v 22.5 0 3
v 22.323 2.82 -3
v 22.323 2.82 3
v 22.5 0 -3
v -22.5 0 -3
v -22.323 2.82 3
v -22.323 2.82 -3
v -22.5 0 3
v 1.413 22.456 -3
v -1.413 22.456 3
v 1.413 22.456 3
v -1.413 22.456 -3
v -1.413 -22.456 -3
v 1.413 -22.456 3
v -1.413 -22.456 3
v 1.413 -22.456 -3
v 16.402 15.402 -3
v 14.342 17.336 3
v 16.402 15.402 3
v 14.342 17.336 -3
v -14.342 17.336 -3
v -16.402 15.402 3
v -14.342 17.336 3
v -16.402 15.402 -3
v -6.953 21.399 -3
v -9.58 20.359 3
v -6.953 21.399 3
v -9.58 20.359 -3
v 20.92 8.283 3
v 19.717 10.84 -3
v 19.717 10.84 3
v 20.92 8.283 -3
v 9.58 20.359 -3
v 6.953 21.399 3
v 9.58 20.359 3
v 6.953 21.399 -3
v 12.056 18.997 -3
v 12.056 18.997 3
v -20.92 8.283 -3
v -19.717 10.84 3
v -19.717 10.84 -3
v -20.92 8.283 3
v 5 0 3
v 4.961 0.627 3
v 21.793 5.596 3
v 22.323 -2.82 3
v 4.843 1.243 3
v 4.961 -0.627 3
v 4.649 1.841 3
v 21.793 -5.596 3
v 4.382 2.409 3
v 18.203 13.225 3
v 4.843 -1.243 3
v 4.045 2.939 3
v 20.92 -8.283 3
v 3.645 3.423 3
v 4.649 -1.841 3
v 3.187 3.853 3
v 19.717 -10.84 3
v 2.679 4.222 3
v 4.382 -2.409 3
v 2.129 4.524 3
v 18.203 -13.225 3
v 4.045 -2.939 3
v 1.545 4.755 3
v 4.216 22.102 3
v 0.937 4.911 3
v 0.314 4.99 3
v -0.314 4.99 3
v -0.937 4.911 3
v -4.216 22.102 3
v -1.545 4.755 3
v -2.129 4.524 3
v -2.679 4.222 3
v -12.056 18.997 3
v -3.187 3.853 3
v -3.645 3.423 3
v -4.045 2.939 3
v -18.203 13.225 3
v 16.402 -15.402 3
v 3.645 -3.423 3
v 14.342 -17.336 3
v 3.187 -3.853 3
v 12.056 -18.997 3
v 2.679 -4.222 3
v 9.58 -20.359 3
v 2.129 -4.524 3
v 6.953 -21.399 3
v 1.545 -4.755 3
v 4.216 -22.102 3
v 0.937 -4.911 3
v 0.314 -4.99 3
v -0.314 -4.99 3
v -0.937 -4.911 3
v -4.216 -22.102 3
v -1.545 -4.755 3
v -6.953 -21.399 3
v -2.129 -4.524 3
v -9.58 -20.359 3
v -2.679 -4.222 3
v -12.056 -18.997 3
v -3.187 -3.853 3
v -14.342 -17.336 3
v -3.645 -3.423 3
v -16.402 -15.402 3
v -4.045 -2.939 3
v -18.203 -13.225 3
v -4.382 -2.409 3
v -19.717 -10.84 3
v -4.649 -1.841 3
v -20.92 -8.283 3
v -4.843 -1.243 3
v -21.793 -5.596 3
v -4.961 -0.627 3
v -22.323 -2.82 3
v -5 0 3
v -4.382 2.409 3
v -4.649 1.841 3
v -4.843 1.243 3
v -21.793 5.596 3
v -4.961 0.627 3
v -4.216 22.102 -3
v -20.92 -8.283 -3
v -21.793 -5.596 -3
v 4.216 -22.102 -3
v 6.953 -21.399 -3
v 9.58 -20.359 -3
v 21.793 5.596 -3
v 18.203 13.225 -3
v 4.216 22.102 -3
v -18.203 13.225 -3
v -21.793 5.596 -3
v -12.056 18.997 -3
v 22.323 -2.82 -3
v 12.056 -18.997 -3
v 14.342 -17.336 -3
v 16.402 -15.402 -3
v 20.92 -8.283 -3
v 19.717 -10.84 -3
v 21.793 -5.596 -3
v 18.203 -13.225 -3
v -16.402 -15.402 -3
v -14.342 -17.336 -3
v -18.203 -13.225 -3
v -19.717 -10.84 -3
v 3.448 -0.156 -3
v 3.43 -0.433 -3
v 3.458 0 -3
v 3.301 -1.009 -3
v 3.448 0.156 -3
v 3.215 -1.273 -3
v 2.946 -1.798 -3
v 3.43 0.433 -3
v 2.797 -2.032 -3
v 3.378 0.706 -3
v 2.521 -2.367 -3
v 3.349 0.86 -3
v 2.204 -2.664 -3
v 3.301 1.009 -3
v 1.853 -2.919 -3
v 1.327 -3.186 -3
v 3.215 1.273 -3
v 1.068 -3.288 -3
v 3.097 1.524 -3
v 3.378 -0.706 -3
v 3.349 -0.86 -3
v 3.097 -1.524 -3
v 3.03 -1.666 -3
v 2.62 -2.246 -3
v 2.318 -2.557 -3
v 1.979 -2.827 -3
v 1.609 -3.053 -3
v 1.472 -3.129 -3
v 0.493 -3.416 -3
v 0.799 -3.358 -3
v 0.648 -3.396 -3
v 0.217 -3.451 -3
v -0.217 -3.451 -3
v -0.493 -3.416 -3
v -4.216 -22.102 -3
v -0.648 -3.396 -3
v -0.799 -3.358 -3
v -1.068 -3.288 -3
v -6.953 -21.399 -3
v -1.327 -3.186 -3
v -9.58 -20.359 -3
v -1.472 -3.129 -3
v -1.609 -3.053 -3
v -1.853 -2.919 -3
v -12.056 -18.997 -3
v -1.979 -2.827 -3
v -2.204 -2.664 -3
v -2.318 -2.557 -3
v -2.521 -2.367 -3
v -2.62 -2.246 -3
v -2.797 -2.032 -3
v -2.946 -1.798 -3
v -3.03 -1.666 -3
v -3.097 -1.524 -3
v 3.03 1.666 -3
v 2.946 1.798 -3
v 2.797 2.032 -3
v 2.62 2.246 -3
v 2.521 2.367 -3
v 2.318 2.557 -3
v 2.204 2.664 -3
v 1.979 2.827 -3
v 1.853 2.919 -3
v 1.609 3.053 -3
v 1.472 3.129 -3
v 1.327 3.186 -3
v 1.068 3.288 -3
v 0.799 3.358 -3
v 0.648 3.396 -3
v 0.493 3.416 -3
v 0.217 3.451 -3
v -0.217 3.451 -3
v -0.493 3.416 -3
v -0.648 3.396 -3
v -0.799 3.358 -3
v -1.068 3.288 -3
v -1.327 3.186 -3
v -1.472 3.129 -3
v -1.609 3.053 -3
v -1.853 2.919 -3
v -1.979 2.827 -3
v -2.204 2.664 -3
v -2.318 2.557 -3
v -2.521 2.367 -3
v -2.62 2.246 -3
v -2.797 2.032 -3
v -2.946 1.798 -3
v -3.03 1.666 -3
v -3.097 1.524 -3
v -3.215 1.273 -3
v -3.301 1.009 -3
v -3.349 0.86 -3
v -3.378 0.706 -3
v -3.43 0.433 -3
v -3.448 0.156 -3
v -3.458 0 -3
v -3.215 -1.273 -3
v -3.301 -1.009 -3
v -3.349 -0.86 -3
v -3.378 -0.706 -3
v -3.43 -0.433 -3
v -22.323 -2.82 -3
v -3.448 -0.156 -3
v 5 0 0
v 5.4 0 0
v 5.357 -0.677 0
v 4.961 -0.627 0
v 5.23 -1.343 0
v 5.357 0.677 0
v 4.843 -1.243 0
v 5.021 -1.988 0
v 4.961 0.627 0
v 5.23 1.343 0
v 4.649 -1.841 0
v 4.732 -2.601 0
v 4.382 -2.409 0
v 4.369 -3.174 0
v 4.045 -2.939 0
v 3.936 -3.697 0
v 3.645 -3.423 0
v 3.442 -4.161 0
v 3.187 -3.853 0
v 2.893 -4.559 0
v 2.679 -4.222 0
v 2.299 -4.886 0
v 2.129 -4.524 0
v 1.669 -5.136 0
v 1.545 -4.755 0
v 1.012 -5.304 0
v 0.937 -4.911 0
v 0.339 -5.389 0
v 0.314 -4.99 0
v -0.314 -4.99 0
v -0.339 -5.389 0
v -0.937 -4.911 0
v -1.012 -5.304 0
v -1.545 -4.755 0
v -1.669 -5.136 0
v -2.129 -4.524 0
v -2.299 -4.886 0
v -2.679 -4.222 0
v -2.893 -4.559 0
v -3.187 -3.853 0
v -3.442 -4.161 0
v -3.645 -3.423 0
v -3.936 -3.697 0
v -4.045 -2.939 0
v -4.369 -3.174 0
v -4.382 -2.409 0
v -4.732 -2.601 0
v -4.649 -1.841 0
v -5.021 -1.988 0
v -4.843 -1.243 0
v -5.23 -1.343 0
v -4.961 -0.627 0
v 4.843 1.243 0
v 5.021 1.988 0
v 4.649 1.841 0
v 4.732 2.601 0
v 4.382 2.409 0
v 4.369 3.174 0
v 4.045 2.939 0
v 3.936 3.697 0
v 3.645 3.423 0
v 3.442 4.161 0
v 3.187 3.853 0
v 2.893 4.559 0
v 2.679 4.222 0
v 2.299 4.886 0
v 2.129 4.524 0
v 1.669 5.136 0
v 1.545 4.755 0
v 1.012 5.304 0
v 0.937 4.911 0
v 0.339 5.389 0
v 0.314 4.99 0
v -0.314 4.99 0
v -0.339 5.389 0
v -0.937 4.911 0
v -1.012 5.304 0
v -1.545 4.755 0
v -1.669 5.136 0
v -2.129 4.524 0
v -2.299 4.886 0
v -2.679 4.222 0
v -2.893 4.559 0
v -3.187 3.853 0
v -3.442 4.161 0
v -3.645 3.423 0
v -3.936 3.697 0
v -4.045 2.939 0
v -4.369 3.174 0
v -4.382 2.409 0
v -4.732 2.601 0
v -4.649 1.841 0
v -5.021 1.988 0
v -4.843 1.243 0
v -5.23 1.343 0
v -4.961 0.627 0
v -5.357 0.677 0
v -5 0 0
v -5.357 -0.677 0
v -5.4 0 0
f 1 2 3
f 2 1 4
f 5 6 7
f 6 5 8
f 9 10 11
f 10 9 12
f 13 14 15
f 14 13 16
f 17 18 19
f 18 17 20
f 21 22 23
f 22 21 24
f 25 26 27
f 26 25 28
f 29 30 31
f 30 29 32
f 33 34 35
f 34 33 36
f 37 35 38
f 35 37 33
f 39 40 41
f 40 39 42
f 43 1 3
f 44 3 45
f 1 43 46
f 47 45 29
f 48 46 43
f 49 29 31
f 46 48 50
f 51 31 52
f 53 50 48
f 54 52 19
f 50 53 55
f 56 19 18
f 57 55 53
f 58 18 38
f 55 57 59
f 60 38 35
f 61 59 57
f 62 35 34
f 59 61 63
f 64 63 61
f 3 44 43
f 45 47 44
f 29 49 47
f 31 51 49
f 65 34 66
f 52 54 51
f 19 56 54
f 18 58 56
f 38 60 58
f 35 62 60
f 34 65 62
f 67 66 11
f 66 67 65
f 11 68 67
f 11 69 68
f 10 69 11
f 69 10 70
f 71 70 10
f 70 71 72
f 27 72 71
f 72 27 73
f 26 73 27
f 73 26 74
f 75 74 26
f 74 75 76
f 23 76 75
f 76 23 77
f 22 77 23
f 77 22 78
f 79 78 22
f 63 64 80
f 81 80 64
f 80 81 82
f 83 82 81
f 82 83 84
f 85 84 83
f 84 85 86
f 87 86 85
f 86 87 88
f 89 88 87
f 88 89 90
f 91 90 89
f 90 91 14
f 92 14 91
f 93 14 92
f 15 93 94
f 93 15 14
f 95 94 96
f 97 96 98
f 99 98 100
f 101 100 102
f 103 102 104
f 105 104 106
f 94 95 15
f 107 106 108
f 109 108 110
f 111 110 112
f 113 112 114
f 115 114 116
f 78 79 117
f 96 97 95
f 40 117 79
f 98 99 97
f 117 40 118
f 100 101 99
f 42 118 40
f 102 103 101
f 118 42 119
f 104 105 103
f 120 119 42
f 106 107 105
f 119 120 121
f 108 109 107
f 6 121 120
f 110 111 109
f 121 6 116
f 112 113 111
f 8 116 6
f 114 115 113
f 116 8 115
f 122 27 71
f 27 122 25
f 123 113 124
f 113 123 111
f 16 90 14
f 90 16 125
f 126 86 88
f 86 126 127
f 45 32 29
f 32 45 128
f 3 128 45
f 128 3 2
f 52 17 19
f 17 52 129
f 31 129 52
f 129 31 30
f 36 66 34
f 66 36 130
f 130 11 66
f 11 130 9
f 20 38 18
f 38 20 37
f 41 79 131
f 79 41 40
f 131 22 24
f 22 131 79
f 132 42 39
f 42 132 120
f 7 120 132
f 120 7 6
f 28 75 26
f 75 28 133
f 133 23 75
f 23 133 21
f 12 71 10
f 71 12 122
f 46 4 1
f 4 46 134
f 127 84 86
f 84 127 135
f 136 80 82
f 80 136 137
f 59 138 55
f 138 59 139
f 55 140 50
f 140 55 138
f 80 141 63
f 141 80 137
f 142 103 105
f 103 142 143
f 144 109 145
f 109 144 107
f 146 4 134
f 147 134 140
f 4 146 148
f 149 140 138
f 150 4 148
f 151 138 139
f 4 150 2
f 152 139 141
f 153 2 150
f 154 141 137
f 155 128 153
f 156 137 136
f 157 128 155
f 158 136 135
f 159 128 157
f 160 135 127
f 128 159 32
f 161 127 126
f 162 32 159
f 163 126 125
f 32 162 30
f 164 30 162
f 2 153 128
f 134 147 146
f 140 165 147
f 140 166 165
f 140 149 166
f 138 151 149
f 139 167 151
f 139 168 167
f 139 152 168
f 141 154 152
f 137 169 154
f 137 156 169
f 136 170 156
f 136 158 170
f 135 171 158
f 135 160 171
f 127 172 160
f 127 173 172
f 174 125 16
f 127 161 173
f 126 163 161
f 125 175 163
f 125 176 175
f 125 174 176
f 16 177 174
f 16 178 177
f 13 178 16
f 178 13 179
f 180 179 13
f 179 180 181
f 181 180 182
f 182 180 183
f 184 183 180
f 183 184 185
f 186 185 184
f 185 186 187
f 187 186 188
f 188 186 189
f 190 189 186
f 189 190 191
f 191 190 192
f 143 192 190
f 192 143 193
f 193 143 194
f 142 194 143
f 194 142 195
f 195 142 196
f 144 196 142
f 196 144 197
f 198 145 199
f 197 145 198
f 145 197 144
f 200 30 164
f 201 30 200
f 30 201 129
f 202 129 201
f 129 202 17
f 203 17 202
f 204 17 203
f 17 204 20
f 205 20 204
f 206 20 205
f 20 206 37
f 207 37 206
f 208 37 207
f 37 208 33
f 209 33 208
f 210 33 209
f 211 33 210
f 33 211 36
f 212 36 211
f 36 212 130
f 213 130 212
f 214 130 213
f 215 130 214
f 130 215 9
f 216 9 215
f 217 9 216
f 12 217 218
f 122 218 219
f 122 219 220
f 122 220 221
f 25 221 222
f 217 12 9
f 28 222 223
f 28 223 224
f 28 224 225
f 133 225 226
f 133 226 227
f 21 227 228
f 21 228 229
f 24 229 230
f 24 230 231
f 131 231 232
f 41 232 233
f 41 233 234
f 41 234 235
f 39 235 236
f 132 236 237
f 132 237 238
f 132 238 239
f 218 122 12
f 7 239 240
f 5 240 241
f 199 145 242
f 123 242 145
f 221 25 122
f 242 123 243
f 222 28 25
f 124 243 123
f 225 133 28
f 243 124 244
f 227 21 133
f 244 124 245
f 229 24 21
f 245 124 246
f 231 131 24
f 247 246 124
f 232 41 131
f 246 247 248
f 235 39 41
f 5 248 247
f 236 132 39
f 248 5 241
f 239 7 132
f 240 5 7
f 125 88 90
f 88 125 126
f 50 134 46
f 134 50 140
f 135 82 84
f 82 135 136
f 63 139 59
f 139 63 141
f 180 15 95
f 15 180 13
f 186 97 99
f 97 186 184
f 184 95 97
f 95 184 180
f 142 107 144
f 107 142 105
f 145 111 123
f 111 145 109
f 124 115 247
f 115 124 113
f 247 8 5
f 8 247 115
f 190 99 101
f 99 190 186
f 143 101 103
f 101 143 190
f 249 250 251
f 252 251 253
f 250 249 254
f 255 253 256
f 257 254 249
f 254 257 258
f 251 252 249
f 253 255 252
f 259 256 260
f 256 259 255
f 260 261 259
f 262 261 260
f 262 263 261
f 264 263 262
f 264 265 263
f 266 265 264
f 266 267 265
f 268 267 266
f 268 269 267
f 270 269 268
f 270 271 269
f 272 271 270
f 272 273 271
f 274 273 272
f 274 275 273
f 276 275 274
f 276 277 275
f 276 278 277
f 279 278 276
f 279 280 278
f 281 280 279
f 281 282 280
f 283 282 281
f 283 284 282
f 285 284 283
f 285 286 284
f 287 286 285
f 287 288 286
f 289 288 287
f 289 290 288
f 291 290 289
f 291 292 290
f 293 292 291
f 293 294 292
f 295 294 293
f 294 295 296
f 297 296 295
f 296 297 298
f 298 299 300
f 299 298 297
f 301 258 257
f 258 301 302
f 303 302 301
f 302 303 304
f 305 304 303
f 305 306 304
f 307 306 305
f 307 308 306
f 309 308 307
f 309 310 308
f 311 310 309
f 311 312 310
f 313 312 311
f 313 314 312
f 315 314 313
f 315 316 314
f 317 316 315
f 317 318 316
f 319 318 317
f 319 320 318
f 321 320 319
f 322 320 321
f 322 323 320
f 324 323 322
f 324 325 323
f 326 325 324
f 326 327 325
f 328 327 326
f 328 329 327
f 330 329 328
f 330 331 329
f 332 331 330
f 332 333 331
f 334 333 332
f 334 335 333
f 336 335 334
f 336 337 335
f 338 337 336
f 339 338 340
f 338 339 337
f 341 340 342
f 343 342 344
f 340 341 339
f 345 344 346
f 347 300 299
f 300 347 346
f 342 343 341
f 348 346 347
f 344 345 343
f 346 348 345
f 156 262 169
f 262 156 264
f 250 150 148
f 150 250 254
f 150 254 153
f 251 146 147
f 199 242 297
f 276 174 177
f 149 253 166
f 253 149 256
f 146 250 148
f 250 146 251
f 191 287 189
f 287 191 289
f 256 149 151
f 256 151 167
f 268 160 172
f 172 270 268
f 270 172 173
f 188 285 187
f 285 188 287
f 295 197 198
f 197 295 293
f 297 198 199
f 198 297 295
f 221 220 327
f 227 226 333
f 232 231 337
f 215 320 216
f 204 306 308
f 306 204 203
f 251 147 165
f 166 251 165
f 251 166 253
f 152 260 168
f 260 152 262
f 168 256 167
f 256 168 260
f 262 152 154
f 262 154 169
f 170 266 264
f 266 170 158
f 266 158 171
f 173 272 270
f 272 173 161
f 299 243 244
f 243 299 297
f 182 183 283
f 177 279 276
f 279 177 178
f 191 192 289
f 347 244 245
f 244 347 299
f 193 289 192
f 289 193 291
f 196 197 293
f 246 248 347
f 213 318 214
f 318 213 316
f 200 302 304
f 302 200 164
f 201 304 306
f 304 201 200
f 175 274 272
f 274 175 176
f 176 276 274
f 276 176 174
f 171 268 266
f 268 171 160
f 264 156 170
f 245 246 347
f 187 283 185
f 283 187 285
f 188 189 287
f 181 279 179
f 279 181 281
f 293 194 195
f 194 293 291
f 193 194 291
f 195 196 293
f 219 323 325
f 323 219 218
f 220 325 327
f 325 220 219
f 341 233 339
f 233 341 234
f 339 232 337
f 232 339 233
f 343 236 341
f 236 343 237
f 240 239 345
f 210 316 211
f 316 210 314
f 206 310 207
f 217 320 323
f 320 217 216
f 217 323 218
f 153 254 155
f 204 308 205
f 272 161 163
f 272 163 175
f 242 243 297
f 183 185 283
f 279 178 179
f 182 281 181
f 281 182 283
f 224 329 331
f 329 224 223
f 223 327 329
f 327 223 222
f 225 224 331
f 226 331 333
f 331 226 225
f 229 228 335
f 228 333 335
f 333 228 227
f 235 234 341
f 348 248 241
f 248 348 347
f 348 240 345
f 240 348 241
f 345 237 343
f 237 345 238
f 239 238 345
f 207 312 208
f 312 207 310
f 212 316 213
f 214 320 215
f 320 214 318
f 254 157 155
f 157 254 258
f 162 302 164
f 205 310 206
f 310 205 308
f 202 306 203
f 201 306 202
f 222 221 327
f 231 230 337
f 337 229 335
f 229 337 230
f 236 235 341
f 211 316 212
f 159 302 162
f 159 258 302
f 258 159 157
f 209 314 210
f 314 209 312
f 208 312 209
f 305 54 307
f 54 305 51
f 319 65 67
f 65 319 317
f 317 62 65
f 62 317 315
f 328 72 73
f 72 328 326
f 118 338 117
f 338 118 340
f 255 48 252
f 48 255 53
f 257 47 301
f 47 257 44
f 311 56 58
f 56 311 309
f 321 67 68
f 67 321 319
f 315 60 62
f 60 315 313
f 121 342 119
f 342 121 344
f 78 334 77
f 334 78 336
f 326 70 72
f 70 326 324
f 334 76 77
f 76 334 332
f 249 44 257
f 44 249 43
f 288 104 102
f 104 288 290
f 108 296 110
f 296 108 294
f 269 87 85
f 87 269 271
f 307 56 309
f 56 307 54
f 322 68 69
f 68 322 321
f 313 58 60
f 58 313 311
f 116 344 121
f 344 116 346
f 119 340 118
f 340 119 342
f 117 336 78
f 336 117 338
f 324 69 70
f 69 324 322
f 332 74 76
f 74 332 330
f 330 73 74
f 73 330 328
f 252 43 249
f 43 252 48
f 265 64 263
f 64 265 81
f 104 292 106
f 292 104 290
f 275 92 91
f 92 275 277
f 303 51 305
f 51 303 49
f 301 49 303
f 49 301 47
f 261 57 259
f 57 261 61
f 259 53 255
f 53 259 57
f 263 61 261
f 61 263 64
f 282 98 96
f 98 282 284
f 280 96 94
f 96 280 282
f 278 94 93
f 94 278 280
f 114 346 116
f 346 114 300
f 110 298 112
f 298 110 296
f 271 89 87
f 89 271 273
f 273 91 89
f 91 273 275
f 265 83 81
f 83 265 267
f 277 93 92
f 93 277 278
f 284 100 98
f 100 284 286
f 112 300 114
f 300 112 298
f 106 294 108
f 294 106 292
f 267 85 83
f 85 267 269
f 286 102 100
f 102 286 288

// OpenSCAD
$fn = 50;

difference() {
	union() {
		translate(v = [0, 0, -3.0]) {
			cylinder(h = 6, r = 22.5);
		}
		#translate(v = [0, 0, -6.0]) {
			cylinder(h = 6, r = 2.875);
		}
	}
	union() {
		translate(v = [0, 0, 0]) {
			rotate(a = [0, 0, 0]) {
				difference() {
					union() {
						translate(v = [0, 0, -6.0]) {
							cylinder(h = 6, r = 2.6);
						}
						translate(v = [0, 0, -3.9]) {
							cylinder(h = 3.9, r1 = 2.875, r2 = 5.4);
						}
						translate(v = [0, 0, -6.0]) {
							cylinder(h = 6, r = 2.875);
						}
						translate(v = [0, 0, -6.0]) {
							cylinder(h = 6, r = 2.6);
						}
					}
					union();
				}
			}
		}
		#cylinder(h = 3, r = 5.0);
	}
}
